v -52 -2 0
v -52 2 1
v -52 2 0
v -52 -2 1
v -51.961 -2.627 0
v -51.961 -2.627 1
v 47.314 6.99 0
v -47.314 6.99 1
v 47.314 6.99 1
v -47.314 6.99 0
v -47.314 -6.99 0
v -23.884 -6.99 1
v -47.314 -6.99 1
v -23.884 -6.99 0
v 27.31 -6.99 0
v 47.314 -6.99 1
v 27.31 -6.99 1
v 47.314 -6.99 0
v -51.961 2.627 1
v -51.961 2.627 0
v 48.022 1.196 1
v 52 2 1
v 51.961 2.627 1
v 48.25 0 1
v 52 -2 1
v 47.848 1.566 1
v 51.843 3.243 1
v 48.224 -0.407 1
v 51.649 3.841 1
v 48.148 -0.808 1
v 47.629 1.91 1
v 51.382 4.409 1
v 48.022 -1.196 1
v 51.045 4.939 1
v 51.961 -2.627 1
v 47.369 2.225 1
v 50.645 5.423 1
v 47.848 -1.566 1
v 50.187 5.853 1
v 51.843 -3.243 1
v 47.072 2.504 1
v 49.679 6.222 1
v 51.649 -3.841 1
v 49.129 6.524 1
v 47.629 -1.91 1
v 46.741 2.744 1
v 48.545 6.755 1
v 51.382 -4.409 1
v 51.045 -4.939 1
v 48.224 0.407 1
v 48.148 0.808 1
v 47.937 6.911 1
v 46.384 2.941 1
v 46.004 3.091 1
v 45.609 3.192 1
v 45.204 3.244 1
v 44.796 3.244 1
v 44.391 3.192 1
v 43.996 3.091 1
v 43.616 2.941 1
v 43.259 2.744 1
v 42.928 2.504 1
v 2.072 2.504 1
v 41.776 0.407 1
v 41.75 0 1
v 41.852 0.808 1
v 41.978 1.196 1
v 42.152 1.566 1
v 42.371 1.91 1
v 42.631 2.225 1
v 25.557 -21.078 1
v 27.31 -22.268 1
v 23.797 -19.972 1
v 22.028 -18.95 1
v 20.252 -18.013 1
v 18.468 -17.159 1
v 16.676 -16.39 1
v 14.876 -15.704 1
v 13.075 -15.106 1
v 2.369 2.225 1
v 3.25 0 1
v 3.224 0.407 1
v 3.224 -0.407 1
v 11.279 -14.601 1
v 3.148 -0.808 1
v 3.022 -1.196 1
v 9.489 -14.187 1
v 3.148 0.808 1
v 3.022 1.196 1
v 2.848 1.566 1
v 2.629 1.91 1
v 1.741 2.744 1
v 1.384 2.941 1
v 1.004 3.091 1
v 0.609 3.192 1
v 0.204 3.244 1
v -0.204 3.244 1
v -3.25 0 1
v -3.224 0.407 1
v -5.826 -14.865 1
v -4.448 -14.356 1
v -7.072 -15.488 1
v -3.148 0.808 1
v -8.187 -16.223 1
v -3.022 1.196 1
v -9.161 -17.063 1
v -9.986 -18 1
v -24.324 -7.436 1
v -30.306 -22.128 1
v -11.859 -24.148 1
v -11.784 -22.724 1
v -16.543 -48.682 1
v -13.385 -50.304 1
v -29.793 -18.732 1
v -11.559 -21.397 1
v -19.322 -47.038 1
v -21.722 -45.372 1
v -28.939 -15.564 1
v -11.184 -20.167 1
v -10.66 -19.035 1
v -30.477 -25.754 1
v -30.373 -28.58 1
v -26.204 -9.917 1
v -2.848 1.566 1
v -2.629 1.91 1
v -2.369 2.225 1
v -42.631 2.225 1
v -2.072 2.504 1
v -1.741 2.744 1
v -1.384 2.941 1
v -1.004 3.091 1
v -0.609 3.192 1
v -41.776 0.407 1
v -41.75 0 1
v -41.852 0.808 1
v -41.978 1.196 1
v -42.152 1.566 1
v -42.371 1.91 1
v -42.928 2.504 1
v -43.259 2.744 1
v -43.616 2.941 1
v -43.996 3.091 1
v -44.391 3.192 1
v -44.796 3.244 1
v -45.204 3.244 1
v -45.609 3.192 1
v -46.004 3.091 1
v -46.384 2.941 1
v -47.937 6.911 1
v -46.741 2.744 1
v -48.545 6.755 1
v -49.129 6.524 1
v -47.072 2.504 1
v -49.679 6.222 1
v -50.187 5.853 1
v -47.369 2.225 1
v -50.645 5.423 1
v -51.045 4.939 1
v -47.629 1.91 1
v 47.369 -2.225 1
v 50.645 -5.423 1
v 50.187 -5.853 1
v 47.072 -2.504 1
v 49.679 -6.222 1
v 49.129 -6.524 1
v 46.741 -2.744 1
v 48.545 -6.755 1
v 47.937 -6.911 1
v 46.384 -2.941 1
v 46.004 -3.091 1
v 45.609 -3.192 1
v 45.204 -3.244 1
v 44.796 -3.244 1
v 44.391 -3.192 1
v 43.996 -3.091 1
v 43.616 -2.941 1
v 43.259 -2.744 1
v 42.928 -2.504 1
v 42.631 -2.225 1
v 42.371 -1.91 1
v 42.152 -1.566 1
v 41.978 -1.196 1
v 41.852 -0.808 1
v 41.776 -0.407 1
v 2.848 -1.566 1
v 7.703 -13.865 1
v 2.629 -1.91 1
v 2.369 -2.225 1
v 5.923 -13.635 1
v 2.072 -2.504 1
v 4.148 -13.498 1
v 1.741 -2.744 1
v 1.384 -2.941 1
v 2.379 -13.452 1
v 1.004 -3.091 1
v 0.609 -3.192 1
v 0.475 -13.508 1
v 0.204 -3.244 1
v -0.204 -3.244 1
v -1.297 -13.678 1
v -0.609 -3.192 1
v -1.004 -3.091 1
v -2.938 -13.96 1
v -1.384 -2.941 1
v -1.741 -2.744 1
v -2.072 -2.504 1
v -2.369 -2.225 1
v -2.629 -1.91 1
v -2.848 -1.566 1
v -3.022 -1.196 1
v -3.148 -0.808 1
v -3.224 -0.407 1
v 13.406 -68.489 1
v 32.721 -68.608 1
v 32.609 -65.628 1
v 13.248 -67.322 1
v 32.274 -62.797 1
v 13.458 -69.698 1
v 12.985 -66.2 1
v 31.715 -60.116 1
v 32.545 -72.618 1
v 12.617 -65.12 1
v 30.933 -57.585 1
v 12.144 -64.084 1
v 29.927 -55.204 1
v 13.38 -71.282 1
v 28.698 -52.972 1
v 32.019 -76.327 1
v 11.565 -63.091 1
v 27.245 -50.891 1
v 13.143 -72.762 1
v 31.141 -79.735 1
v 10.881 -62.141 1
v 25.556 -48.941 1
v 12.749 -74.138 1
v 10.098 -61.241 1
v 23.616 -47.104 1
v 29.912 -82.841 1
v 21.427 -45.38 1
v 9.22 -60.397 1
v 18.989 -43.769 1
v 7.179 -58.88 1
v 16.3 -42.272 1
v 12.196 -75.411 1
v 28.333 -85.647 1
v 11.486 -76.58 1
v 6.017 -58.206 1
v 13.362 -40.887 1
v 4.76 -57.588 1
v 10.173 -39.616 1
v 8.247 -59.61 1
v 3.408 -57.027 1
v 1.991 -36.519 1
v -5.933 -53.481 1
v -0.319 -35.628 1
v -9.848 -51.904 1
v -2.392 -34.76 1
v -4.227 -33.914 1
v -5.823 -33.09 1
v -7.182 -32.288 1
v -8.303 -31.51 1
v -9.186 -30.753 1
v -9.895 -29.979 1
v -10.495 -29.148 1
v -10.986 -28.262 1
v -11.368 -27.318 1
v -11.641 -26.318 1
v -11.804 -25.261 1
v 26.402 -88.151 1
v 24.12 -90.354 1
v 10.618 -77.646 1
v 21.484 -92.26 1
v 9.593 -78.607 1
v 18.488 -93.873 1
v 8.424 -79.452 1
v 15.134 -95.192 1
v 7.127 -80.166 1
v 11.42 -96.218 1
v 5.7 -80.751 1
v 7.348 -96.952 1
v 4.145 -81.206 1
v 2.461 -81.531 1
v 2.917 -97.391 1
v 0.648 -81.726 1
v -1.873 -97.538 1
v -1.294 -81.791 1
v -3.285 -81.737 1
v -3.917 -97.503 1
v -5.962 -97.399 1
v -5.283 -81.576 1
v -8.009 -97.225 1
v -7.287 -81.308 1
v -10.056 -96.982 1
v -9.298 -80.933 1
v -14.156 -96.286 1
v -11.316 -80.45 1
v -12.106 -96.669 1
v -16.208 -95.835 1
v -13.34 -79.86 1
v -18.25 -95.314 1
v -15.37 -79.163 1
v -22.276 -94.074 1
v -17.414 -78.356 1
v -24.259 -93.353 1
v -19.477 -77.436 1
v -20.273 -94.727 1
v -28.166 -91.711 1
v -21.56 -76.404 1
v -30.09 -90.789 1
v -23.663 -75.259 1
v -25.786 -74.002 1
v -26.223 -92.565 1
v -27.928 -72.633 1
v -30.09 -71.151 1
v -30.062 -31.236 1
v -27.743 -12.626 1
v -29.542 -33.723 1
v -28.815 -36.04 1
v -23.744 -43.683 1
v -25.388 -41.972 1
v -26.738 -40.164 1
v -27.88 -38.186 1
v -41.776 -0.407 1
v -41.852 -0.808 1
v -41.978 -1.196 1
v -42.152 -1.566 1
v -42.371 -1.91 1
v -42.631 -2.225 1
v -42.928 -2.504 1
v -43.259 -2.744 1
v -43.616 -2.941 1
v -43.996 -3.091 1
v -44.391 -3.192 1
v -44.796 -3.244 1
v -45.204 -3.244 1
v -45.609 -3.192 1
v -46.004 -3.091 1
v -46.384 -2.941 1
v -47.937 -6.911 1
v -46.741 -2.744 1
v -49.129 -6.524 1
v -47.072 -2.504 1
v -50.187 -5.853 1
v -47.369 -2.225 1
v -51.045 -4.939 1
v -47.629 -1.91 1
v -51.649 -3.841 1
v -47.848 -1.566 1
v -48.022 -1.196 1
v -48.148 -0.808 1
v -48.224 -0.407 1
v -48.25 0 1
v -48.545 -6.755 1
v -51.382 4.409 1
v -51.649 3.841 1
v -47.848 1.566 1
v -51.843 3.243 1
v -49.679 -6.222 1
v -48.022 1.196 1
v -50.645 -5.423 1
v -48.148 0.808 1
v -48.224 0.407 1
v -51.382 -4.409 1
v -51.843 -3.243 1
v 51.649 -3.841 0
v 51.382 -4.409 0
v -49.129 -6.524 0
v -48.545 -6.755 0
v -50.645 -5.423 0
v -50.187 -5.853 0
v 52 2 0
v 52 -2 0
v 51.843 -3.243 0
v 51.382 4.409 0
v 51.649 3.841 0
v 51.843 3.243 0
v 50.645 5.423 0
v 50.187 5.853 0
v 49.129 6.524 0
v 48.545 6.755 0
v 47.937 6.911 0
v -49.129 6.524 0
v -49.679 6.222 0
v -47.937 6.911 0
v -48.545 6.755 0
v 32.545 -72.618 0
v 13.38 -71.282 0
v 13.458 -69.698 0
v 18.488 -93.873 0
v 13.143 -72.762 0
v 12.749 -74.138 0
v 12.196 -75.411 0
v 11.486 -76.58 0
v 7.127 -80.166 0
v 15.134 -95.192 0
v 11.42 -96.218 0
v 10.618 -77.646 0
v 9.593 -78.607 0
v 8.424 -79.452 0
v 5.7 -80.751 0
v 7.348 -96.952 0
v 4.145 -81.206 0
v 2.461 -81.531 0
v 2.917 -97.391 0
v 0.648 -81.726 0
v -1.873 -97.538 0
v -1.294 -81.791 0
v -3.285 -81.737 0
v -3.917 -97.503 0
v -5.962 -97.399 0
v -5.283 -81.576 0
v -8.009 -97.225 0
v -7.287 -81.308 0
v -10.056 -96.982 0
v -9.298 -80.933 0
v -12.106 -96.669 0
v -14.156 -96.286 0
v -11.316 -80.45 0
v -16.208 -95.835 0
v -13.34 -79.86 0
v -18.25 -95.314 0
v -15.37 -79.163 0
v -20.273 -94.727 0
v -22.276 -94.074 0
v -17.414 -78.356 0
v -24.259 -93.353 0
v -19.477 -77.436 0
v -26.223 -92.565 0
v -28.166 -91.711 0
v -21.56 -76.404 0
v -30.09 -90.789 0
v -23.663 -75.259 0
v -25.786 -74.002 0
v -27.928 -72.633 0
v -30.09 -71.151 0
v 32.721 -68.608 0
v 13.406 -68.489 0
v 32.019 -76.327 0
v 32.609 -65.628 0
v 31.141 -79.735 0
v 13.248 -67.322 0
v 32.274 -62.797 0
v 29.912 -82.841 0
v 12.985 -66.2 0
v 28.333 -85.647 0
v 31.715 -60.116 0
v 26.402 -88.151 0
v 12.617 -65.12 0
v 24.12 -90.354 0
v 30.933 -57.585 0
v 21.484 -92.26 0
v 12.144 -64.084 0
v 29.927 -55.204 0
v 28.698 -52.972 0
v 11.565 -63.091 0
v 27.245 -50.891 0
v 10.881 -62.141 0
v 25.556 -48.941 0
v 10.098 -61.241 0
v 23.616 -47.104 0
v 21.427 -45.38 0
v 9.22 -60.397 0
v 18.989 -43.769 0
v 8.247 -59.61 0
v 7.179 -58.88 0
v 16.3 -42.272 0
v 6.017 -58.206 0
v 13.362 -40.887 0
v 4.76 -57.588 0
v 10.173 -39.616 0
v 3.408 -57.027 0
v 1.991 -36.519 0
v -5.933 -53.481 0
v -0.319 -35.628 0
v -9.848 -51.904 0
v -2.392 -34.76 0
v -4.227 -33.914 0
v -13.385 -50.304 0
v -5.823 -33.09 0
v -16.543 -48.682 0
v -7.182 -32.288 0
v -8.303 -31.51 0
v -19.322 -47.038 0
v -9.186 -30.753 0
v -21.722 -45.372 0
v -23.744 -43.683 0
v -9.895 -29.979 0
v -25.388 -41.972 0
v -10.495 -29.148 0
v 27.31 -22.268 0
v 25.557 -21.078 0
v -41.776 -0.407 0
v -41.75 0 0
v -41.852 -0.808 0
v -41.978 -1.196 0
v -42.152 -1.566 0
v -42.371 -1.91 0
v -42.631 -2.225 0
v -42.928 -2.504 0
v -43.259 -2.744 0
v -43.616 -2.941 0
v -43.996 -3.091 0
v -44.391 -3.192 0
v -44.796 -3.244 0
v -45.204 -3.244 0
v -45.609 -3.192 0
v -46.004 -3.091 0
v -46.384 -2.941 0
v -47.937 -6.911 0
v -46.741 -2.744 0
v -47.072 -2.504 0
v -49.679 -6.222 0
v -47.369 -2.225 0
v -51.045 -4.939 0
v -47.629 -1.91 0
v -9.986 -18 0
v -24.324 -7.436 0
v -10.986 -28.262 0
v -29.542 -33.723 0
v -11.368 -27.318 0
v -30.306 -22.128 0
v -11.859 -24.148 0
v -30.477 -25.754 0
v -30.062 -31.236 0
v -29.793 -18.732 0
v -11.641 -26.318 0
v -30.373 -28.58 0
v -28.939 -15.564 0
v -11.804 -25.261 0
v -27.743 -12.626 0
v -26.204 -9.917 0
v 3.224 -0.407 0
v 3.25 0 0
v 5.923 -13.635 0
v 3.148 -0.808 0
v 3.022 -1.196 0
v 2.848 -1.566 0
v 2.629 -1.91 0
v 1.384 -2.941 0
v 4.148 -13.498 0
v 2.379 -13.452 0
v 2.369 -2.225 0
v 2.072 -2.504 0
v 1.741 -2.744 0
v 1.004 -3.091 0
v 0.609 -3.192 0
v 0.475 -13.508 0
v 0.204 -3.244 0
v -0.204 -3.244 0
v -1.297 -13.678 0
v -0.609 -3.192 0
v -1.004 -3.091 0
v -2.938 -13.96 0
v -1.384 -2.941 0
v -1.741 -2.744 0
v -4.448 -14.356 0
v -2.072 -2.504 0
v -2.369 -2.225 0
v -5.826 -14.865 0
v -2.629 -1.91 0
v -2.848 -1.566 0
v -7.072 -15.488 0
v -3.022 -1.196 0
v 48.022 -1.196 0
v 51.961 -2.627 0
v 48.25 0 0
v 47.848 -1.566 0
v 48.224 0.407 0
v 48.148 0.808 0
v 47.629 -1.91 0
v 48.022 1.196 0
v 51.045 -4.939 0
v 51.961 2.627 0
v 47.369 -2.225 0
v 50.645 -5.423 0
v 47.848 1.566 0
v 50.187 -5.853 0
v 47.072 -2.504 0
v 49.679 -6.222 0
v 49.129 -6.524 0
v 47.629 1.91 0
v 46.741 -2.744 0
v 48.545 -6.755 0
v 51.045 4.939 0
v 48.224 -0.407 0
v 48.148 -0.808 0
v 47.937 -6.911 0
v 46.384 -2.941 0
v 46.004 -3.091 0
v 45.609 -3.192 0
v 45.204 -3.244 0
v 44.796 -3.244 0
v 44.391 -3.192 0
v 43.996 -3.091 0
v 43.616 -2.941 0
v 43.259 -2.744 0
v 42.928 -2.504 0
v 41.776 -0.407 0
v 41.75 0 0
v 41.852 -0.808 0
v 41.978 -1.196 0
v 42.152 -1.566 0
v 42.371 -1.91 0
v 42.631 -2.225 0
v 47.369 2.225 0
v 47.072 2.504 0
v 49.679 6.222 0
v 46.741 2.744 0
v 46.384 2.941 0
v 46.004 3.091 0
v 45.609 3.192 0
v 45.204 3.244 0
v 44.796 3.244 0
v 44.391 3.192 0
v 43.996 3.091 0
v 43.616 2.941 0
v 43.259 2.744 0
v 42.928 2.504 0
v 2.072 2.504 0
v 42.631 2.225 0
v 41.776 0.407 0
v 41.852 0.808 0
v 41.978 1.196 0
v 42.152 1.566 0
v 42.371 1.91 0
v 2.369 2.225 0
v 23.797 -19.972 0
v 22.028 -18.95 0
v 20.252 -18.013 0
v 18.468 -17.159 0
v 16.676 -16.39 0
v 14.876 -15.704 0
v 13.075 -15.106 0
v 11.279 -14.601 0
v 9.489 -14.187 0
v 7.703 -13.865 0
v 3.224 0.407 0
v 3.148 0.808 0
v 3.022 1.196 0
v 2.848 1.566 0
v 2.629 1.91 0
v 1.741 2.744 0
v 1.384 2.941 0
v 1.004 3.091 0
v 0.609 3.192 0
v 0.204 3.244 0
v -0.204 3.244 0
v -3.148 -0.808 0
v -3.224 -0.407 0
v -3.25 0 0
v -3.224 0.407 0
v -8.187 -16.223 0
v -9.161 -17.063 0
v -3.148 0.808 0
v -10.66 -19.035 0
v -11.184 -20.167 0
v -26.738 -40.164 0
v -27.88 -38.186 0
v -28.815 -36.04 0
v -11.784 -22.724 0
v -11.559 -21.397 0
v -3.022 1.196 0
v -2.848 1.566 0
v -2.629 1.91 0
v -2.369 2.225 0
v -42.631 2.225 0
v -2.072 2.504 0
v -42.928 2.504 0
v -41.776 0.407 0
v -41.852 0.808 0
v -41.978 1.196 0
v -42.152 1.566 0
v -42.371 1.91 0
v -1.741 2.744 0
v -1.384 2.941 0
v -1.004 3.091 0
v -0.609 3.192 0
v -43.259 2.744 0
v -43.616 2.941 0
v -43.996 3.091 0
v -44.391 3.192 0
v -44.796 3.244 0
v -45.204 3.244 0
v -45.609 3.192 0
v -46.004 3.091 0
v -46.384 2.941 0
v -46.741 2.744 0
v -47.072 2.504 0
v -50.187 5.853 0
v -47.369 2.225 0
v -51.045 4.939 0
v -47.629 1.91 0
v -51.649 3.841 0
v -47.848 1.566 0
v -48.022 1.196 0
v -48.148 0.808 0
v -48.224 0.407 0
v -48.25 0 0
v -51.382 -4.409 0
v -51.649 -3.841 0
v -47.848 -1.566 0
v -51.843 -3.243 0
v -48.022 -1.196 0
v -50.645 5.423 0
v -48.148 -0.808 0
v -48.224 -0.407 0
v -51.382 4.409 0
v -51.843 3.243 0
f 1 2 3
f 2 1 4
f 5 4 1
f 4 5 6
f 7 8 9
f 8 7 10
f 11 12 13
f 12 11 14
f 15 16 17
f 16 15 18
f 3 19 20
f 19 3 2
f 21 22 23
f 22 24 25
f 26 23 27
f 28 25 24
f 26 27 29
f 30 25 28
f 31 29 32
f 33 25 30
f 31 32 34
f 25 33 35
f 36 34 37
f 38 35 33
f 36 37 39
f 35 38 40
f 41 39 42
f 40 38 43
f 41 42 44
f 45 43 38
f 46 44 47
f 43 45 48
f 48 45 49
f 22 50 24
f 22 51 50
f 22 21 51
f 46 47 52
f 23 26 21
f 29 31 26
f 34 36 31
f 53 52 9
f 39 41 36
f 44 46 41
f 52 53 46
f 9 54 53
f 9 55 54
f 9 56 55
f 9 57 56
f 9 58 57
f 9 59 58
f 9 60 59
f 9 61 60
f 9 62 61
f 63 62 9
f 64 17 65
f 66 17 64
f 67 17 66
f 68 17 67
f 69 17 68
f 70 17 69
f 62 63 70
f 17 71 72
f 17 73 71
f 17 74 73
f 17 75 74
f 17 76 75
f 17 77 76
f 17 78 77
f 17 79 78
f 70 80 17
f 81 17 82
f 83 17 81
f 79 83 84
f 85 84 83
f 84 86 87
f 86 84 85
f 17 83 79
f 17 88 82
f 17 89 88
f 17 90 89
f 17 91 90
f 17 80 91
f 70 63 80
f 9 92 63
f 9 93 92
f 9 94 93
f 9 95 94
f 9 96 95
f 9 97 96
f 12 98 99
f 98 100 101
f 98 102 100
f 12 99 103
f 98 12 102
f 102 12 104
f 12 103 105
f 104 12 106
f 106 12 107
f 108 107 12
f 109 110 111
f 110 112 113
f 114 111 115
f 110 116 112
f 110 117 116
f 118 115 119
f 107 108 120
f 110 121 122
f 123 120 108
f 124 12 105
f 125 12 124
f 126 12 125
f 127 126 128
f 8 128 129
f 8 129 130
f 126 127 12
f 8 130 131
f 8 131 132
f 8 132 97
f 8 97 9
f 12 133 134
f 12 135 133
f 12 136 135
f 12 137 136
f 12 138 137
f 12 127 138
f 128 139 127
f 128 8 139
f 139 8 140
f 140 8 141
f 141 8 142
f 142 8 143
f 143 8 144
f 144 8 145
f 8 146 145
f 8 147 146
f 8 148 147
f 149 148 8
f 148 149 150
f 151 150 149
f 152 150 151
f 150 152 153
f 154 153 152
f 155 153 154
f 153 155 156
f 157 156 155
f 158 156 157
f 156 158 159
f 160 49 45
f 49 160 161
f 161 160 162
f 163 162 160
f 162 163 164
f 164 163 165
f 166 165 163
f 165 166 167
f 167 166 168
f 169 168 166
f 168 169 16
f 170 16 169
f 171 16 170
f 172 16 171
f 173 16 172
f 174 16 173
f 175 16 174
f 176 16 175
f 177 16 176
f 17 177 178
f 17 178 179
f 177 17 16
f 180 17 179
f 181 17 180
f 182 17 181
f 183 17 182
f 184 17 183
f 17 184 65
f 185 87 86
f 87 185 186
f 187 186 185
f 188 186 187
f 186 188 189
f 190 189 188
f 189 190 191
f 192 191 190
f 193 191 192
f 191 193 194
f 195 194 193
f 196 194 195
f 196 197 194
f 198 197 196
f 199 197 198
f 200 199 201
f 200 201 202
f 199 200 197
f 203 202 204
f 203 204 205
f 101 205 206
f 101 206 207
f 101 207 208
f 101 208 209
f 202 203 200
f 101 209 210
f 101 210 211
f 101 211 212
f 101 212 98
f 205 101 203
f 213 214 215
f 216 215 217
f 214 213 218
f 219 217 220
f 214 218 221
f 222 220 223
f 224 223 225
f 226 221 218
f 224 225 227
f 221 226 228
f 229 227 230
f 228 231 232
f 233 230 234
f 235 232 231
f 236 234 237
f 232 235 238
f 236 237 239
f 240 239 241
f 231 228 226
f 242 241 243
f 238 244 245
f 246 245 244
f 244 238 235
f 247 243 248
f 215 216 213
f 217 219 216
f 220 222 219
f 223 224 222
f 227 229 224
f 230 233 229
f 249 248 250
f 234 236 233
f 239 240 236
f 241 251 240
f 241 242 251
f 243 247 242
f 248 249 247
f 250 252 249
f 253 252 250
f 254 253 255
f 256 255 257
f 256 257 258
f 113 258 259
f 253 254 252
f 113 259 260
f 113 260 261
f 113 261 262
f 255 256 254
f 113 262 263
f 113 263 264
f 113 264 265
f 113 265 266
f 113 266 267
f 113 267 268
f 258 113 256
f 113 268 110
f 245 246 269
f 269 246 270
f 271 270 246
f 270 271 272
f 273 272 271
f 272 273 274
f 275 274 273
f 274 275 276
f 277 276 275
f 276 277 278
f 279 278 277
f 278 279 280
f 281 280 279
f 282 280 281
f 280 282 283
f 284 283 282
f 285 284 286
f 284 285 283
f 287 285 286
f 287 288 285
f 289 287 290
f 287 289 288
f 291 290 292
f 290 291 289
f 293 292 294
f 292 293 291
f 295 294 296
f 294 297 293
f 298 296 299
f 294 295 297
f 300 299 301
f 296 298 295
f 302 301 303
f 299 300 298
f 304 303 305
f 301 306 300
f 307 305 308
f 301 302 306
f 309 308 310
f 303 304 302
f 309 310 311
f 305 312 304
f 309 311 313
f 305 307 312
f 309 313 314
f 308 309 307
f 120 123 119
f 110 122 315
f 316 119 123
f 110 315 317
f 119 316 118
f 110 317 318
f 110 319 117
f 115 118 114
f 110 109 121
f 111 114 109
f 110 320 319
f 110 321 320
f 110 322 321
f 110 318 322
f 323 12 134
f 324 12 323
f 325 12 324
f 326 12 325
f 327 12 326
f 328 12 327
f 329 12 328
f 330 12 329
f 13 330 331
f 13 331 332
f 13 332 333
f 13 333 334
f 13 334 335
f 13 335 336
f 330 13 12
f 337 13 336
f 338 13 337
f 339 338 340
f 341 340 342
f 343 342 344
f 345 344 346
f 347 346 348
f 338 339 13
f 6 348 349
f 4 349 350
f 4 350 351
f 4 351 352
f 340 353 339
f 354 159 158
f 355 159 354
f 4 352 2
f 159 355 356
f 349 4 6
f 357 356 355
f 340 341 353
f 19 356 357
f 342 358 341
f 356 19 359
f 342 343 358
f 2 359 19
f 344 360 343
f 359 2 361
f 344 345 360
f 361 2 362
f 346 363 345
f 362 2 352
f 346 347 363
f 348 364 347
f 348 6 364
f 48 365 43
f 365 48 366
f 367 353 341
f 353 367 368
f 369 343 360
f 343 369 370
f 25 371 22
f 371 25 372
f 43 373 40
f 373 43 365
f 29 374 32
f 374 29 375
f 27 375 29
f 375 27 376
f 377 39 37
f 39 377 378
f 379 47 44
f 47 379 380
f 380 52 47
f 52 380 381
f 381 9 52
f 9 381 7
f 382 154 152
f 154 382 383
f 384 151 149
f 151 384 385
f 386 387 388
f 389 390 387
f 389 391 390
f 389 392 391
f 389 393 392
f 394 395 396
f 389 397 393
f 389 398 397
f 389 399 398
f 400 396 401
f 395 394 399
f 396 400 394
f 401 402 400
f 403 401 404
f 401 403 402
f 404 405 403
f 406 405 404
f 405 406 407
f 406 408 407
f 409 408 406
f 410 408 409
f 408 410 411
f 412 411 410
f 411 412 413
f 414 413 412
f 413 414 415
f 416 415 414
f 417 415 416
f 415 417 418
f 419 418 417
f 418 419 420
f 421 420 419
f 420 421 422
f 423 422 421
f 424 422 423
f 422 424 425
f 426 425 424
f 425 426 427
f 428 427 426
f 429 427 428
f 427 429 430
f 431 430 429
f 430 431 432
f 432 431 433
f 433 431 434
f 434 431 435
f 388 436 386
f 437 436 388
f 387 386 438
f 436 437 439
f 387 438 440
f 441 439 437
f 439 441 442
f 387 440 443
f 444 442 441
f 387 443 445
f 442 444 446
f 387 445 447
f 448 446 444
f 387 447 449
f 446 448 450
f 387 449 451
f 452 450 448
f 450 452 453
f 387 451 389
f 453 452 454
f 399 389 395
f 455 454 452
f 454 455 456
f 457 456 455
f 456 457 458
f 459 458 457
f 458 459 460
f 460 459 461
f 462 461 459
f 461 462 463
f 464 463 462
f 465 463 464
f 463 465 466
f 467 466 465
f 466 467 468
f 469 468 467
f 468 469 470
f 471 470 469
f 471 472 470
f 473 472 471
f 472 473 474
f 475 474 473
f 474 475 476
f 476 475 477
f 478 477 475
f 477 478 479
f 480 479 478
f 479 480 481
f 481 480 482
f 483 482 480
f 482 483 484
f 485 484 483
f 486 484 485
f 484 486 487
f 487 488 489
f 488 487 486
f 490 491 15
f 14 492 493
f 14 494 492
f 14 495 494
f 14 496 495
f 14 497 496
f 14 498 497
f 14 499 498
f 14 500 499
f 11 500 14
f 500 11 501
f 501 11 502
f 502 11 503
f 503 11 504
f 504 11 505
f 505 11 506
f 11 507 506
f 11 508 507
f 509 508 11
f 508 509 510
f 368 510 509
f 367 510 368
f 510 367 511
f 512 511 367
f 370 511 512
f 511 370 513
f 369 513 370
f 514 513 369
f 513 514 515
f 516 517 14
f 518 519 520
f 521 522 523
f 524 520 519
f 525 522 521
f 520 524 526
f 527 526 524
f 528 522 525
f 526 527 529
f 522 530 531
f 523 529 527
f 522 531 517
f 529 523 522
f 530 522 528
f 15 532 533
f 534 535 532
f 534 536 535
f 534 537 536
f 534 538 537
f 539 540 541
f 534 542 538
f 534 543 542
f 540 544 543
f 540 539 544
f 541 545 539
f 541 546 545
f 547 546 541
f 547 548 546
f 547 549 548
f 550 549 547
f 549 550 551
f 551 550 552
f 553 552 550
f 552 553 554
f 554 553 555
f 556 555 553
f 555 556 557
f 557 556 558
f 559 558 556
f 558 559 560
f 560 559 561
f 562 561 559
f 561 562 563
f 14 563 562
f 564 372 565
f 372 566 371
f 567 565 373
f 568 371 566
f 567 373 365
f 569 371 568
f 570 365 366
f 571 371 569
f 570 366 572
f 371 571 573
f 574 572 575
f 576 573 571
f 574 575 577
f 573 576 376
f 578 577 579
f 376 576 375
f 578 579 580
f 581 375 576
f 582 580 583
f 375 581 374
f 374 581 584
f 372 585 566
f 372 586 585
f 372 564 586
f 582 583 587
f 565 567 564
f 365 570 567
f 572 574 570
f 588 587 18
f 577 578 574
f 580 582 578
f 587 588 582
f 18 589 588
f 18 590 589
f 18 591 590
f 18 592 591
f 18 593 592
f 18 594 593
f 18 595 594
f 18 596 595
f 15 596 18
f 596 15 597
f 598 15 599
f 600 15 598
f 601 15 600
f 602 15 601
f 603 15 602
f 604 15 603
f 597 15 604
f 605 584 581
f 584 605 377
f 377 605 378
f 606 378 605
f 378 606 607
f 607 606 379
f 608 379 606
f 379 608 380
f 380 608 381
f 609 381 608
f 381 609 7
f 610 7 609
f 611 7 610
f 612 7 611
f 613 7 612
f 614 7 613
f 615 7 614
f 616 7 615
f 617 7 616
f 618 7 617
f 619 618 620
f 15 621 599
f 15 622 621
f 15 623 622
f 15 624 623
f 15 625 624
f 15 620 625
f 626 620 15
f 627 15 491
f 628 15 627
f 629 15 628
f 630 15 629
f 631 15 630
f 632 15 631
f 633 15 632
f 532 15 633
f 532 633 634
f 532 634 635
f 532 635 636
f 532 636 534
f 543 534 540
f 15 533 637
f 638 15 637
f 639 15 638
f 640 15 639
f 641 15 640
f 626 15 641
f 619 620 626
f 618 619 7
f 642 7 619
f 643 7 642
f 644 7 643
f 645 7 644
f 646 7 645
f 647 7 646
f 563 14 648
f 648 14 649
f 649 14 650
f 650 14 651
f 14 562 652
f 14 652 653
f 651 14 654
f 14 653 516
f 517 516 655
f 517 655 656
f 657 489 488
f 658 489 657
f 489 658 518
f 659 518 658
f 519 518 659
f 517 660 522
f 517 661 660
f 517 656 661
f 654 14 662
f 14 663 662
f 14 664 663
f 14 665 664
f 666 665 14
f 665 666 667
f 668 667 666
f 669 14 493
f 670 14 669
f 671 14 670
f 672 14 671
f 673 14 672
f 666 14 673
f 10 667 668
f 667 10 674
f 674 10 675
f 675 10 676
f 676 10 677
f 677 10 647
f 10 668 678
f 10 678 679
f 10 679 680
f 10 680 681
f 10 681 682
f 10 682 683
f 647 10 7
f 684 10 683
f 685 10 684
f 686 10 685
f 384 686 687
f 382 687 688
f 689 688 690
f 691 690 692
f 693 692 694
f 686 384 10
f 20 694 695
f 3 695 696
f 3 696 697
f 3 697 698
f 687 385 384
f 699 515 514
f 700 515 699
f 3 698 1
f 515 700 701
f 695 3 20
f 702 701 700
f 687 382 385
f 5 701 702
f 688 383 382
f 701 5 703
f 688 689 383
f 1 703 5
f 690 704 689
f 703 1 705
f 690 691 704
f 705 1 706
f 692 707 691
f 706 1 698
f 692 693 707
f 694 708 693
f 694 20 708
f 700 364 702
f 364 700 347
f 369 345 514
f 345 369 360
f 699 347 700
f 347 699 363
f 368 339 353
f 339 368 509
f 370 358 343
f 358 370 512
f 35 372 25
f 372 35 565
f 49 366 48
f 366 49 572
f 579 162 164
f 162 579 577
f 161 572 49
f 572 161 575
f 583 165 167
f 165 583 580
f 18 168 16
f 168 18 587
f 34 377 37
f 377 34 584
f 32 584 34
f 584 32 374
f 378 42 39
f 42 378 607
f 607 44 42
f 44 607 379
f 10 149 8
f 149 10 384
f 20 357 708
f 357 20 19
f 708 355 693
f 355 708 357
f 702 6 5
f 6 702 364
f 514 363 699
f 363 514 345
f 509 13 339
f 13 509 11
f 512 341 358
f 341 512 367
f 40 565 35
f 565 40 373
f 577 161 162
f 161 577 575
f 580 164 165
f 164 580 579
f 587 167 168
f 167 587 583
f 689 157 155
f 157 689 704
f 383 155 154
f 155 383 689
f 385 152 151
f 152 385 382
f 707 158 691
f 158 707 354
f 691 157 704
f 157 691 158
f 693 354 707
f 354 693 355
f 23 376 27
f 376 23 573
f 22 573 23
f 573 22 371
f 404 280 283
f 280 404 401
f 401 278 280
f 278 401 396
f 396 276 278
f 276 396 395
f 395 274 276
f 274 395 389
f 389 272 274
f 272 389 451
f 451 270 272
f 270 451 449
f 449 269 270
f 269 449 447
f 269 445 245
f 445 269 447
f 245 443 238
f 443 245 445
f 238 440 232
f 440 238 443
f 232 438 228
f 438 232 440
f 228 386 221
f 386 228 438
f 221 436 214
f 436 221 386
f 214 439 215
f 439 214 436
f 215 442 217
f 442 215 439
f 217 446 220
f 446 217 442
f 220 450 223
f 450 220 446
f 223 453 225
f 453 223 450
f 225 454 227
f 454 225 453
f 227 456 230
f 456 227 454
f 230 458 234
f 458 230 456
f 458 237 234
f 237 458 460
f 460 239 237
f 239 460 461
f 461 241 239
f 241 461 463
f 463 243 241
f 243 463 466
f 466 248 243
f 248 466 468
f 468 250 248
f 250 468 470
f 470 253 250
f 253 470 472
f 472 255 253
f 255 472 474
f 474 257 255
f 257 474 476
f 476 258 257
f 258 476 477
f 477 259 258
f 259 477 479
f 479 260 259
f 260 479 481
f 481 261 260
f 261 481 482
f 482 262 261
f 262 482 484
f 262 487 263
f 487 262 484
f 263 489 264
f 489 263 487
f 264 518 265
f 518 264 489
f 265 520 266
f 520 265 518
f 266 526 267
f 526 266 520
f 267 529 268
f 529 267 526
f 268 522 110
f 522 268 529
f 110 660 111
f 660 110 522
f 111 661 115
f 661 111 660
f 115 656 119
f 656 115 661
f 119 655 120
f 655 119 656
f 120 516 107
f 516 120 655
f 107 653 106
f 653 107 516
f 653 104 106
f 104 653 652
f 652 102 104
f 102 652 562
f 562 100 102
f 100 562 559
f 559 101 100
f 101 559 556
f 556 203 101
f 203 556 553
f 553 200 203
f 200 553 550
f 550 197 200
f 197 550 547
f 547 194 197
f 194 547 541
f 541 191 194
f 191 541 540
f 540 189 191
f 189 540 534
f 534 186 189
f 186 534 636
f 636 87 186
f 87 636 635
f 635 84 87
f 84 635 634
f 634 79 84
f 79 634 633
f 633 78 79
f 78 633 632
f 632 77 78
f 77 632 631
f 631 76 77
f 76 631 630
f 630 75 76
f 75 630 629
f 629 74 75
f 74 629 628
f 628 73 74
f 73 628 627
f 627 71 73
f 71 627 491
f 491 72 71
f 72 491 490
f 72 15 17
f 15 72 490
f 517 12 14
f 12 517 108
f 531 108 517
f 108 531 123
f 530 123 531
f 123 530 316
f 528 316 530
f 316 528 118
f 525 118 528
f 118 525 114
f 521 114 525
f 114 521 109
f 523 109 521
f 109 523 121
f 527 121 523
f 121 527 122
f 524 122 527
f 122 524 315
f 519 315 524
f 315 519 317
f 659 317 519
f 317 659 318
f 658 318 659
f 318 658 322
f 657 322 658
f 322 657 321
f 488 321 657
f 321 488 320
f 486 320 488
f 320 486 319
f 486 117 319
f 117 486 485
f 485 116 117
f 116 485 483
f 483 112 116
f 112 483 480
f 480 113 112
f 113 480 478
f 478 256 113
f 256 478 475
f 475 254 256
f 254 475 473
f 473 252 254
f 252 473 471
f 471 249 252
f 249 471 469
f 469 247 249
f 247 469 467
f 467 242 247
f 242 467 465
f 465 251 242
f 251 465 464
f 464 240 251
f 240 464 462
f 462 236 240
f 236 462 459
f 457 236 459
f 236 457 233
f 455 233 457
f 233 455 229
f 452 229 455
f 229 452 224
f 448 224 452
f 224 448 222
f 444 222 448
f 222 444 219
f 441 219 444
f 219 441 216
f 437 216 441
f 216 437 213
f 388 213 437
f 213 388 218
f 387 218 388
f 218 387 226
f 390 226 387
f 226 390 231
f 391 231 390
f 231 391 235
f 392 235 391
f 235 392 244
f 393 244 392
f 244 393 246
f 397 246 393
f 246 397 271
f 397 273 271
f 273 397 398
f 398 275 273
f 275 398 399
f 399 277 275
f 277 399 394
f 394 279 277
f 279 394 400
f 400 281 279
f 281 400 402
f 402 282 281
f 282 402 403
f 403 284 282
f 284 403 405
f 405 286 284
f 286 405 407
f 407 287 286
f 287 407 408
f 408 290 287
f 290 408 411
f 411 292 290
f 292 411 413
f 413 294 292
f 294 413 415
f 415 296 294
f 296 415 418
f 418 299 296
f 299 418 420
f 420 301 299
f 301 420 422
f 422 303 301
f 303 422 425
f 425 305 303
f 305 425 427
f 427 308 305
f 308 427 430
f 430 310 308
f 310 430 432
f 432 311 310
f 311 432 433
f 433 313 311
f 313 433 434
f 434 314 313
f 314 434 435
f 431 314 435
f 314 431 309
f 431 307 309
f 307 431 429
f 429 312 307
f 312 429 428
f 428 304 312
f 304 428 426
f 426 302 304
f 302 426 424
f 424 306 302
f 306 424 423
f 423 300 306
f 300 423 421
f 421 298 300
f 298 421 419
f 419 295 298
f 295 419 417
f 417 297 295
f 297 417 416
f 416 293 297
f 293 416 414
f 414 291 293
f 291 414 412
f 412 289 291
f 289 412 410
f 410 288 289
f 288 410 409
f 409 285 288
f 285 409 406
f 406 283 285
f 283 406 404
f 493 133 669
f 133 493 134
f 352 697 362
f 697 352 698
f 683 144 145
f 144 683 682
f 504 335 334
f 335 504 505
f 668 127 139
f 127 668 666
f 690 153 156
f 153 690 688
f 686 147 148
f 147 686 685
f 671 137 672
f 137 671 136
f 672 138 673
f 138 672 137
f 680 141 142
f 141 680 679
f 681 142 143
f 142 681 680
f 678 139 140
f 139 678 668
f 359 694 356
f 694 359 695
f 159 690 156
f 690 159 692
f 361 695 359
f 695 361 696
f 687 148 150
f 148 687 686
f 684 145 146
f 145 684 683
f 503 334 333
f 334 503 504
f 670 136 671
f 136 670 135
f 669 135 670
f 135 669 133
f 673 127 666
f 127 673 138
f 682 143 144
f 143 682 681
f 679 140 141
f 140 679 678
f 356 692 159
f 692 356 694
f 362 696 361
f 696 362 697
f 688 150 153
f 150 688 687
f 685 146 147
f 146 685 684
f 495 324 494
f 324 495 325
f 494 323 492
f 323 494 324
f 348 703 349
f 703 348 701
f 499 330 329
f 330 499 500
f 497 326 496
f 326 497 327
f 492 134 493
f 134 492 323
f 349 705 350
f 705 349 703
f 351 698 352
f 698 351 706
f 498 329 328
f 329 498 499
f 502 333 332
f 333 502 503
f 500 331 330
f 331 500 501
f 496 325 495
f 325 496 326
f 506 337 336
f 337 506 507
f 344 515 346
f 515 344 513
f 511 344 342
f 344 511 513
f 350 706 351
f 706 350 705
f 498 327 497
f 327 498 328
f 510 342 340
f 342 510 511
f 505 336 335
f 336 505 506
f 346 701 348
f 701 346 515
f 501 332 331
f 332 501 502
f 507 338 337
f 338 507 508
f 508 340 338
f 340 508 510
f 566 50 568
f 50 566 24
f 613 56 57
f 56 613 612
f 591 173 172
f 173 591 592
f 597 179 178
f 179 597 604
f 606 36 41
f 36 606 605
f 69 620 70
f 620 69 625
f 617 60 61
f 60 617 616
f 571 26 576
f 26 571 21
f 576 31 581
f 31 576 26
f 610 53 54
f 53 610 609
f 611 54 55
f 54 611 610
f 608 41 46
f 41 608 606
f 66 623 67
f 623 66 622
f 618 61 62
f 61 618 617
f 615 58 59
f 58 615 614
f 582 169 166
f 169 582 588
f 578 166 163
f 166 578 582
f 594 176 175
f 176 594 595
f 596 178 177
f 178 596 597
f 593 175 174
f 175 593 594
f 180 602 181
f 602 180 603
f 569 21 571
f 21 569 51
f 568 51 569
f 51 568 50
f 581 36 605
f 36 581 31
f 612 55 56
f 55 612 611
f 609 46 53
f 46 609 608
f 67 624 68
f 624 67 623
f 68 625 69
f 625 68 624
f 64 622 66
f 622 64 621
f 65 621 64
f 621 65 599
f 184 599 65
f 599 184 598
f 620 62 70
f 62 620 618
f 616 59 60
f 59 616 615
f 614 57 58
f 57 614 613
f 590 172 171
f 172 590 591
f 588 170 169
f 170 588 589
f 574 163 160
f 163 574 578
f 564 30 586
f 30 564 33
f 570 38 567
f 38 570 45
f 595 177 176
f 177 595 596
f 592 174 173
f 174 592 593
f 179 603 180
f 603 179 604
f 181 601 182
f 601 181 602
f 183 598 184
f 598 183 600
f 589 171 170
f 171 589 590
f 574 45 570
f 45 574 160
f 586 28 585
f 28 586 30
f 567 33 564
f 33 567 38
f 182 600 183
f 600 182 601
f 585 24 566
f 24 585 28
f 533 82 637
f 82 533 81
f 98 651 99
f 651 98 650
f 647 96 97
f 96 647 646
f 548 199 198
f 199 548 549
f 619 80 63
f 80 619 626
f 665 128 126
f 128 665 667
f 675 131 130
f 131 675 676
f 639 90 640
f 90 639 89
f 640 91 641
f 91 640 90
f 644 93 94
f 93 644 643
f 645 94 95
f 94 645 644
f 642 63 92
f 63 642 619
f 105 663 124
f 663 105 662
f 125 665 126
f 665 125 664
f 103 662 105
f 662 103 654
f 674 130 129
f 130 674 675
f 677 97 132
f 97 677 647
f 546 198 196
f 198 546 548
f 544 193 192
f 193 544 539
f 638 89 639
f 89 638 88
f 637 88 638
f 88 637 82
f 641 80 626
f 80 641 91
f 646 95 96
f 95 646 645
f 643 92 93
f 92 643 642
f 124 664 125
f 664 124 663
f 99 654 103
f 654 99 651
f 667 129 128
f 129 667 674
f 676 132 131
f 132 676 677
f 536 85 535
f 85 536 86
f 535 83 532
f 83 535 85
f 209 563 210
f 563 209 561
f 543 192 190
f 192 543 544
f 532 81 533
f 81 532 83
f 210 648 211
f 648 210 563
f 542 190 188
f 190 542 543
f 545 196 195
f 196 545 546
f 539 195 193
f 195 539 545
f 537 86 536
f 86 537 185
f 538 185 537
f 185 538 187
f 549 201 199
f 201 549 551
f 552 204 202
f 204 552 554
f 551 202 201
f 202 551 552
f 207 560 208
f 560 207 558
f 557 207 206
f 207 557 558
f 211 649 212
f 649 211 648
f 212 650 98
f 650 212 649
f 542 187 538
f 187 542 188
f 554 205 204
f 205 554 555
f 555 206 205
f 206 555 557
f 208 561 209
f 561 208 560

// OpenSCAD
$fn = 50;


difference() {
	union() {
		translate(v = [0, 0, 0]) {
			rotate(a = [0, 0, 0]) {
				hull() {
					translate(v = [-47.0000000000, 2.0000000000, 0]) {
						rotate(a = [0, 0, 0]) {
							translate(v = [0, 0, 0]) {
								rotate(a = [0, 0, 0]) {
									cylinder(h = 1, r = 5);
								}
							}
						}
					}
					translate(v = [47.0000000000, 2.0000000000, 0]) {
						rotate(a = [0, 0, 0]) {
							translate(v = [0, 0, 0]) {
								rotate(a = [0, 0, 0]) {
									cylinder(h = 1, r = 5);
								}
							}
						}
					}
					translate(v = [-47.0000000000, -2.0000000000, 0]) {
						rotate(a = [0, 0, 0]) {
							translate(v = [0, 0, 0]) {
								rotate(a = [0, 0, 0]) {
									cylinder(h = 1, r = 5);
								}
							}
						}
					}
					translate(v = [47.0000000000, -2.0000000000, 0]) {
						rotate(a = [0, 0, 0]) {
							translate(v = [0, 0, 0]) {
								rotate(a = [0, 0, 0]) {
									cylinder(h = 1, r = 5);
								}
							}
						}
					}
				}
			}
		}
		translate(v = [0, 0, 0]) {
			rotate(a = [0, 0, 0]) {
				linear_extrude(height = 1) {
					text(font = "DejaVu Sans Mono:style=Bold", halign = "center", size = 95.0000000000, text = "S", valign = "top");
				}
			}
		}
	}
	union() {
		translate(v = [-45.0000000000, 0.0000000000, -125.0000000000]) {
			rotate(a = [0, 0, 0]) {
				cylinder(h = 250, r = 3.2500000000);
			}
		}
		translate(v = [45.0000000000, 0.0000000000, -125.0000000000]) {
			rotate(a = [0, 0, 0]) {
				cylinder(h = 250, r = 3.2500000000);
			}
		}
		translate(v = [45.0000000000, 0.0000000000, -125.0000000000]) {
			rotate(a = [0, 0, 0]) {
				cylinder(h = 250, r = 3.2500000000);
			}
		}
		translate(v = [0, 0, -125.0000000000]) {
			rotate(a = [0, 0, 0]) {
				cylinder(h = 250, r = 3.2500000000);
			}
		}
	}
}
